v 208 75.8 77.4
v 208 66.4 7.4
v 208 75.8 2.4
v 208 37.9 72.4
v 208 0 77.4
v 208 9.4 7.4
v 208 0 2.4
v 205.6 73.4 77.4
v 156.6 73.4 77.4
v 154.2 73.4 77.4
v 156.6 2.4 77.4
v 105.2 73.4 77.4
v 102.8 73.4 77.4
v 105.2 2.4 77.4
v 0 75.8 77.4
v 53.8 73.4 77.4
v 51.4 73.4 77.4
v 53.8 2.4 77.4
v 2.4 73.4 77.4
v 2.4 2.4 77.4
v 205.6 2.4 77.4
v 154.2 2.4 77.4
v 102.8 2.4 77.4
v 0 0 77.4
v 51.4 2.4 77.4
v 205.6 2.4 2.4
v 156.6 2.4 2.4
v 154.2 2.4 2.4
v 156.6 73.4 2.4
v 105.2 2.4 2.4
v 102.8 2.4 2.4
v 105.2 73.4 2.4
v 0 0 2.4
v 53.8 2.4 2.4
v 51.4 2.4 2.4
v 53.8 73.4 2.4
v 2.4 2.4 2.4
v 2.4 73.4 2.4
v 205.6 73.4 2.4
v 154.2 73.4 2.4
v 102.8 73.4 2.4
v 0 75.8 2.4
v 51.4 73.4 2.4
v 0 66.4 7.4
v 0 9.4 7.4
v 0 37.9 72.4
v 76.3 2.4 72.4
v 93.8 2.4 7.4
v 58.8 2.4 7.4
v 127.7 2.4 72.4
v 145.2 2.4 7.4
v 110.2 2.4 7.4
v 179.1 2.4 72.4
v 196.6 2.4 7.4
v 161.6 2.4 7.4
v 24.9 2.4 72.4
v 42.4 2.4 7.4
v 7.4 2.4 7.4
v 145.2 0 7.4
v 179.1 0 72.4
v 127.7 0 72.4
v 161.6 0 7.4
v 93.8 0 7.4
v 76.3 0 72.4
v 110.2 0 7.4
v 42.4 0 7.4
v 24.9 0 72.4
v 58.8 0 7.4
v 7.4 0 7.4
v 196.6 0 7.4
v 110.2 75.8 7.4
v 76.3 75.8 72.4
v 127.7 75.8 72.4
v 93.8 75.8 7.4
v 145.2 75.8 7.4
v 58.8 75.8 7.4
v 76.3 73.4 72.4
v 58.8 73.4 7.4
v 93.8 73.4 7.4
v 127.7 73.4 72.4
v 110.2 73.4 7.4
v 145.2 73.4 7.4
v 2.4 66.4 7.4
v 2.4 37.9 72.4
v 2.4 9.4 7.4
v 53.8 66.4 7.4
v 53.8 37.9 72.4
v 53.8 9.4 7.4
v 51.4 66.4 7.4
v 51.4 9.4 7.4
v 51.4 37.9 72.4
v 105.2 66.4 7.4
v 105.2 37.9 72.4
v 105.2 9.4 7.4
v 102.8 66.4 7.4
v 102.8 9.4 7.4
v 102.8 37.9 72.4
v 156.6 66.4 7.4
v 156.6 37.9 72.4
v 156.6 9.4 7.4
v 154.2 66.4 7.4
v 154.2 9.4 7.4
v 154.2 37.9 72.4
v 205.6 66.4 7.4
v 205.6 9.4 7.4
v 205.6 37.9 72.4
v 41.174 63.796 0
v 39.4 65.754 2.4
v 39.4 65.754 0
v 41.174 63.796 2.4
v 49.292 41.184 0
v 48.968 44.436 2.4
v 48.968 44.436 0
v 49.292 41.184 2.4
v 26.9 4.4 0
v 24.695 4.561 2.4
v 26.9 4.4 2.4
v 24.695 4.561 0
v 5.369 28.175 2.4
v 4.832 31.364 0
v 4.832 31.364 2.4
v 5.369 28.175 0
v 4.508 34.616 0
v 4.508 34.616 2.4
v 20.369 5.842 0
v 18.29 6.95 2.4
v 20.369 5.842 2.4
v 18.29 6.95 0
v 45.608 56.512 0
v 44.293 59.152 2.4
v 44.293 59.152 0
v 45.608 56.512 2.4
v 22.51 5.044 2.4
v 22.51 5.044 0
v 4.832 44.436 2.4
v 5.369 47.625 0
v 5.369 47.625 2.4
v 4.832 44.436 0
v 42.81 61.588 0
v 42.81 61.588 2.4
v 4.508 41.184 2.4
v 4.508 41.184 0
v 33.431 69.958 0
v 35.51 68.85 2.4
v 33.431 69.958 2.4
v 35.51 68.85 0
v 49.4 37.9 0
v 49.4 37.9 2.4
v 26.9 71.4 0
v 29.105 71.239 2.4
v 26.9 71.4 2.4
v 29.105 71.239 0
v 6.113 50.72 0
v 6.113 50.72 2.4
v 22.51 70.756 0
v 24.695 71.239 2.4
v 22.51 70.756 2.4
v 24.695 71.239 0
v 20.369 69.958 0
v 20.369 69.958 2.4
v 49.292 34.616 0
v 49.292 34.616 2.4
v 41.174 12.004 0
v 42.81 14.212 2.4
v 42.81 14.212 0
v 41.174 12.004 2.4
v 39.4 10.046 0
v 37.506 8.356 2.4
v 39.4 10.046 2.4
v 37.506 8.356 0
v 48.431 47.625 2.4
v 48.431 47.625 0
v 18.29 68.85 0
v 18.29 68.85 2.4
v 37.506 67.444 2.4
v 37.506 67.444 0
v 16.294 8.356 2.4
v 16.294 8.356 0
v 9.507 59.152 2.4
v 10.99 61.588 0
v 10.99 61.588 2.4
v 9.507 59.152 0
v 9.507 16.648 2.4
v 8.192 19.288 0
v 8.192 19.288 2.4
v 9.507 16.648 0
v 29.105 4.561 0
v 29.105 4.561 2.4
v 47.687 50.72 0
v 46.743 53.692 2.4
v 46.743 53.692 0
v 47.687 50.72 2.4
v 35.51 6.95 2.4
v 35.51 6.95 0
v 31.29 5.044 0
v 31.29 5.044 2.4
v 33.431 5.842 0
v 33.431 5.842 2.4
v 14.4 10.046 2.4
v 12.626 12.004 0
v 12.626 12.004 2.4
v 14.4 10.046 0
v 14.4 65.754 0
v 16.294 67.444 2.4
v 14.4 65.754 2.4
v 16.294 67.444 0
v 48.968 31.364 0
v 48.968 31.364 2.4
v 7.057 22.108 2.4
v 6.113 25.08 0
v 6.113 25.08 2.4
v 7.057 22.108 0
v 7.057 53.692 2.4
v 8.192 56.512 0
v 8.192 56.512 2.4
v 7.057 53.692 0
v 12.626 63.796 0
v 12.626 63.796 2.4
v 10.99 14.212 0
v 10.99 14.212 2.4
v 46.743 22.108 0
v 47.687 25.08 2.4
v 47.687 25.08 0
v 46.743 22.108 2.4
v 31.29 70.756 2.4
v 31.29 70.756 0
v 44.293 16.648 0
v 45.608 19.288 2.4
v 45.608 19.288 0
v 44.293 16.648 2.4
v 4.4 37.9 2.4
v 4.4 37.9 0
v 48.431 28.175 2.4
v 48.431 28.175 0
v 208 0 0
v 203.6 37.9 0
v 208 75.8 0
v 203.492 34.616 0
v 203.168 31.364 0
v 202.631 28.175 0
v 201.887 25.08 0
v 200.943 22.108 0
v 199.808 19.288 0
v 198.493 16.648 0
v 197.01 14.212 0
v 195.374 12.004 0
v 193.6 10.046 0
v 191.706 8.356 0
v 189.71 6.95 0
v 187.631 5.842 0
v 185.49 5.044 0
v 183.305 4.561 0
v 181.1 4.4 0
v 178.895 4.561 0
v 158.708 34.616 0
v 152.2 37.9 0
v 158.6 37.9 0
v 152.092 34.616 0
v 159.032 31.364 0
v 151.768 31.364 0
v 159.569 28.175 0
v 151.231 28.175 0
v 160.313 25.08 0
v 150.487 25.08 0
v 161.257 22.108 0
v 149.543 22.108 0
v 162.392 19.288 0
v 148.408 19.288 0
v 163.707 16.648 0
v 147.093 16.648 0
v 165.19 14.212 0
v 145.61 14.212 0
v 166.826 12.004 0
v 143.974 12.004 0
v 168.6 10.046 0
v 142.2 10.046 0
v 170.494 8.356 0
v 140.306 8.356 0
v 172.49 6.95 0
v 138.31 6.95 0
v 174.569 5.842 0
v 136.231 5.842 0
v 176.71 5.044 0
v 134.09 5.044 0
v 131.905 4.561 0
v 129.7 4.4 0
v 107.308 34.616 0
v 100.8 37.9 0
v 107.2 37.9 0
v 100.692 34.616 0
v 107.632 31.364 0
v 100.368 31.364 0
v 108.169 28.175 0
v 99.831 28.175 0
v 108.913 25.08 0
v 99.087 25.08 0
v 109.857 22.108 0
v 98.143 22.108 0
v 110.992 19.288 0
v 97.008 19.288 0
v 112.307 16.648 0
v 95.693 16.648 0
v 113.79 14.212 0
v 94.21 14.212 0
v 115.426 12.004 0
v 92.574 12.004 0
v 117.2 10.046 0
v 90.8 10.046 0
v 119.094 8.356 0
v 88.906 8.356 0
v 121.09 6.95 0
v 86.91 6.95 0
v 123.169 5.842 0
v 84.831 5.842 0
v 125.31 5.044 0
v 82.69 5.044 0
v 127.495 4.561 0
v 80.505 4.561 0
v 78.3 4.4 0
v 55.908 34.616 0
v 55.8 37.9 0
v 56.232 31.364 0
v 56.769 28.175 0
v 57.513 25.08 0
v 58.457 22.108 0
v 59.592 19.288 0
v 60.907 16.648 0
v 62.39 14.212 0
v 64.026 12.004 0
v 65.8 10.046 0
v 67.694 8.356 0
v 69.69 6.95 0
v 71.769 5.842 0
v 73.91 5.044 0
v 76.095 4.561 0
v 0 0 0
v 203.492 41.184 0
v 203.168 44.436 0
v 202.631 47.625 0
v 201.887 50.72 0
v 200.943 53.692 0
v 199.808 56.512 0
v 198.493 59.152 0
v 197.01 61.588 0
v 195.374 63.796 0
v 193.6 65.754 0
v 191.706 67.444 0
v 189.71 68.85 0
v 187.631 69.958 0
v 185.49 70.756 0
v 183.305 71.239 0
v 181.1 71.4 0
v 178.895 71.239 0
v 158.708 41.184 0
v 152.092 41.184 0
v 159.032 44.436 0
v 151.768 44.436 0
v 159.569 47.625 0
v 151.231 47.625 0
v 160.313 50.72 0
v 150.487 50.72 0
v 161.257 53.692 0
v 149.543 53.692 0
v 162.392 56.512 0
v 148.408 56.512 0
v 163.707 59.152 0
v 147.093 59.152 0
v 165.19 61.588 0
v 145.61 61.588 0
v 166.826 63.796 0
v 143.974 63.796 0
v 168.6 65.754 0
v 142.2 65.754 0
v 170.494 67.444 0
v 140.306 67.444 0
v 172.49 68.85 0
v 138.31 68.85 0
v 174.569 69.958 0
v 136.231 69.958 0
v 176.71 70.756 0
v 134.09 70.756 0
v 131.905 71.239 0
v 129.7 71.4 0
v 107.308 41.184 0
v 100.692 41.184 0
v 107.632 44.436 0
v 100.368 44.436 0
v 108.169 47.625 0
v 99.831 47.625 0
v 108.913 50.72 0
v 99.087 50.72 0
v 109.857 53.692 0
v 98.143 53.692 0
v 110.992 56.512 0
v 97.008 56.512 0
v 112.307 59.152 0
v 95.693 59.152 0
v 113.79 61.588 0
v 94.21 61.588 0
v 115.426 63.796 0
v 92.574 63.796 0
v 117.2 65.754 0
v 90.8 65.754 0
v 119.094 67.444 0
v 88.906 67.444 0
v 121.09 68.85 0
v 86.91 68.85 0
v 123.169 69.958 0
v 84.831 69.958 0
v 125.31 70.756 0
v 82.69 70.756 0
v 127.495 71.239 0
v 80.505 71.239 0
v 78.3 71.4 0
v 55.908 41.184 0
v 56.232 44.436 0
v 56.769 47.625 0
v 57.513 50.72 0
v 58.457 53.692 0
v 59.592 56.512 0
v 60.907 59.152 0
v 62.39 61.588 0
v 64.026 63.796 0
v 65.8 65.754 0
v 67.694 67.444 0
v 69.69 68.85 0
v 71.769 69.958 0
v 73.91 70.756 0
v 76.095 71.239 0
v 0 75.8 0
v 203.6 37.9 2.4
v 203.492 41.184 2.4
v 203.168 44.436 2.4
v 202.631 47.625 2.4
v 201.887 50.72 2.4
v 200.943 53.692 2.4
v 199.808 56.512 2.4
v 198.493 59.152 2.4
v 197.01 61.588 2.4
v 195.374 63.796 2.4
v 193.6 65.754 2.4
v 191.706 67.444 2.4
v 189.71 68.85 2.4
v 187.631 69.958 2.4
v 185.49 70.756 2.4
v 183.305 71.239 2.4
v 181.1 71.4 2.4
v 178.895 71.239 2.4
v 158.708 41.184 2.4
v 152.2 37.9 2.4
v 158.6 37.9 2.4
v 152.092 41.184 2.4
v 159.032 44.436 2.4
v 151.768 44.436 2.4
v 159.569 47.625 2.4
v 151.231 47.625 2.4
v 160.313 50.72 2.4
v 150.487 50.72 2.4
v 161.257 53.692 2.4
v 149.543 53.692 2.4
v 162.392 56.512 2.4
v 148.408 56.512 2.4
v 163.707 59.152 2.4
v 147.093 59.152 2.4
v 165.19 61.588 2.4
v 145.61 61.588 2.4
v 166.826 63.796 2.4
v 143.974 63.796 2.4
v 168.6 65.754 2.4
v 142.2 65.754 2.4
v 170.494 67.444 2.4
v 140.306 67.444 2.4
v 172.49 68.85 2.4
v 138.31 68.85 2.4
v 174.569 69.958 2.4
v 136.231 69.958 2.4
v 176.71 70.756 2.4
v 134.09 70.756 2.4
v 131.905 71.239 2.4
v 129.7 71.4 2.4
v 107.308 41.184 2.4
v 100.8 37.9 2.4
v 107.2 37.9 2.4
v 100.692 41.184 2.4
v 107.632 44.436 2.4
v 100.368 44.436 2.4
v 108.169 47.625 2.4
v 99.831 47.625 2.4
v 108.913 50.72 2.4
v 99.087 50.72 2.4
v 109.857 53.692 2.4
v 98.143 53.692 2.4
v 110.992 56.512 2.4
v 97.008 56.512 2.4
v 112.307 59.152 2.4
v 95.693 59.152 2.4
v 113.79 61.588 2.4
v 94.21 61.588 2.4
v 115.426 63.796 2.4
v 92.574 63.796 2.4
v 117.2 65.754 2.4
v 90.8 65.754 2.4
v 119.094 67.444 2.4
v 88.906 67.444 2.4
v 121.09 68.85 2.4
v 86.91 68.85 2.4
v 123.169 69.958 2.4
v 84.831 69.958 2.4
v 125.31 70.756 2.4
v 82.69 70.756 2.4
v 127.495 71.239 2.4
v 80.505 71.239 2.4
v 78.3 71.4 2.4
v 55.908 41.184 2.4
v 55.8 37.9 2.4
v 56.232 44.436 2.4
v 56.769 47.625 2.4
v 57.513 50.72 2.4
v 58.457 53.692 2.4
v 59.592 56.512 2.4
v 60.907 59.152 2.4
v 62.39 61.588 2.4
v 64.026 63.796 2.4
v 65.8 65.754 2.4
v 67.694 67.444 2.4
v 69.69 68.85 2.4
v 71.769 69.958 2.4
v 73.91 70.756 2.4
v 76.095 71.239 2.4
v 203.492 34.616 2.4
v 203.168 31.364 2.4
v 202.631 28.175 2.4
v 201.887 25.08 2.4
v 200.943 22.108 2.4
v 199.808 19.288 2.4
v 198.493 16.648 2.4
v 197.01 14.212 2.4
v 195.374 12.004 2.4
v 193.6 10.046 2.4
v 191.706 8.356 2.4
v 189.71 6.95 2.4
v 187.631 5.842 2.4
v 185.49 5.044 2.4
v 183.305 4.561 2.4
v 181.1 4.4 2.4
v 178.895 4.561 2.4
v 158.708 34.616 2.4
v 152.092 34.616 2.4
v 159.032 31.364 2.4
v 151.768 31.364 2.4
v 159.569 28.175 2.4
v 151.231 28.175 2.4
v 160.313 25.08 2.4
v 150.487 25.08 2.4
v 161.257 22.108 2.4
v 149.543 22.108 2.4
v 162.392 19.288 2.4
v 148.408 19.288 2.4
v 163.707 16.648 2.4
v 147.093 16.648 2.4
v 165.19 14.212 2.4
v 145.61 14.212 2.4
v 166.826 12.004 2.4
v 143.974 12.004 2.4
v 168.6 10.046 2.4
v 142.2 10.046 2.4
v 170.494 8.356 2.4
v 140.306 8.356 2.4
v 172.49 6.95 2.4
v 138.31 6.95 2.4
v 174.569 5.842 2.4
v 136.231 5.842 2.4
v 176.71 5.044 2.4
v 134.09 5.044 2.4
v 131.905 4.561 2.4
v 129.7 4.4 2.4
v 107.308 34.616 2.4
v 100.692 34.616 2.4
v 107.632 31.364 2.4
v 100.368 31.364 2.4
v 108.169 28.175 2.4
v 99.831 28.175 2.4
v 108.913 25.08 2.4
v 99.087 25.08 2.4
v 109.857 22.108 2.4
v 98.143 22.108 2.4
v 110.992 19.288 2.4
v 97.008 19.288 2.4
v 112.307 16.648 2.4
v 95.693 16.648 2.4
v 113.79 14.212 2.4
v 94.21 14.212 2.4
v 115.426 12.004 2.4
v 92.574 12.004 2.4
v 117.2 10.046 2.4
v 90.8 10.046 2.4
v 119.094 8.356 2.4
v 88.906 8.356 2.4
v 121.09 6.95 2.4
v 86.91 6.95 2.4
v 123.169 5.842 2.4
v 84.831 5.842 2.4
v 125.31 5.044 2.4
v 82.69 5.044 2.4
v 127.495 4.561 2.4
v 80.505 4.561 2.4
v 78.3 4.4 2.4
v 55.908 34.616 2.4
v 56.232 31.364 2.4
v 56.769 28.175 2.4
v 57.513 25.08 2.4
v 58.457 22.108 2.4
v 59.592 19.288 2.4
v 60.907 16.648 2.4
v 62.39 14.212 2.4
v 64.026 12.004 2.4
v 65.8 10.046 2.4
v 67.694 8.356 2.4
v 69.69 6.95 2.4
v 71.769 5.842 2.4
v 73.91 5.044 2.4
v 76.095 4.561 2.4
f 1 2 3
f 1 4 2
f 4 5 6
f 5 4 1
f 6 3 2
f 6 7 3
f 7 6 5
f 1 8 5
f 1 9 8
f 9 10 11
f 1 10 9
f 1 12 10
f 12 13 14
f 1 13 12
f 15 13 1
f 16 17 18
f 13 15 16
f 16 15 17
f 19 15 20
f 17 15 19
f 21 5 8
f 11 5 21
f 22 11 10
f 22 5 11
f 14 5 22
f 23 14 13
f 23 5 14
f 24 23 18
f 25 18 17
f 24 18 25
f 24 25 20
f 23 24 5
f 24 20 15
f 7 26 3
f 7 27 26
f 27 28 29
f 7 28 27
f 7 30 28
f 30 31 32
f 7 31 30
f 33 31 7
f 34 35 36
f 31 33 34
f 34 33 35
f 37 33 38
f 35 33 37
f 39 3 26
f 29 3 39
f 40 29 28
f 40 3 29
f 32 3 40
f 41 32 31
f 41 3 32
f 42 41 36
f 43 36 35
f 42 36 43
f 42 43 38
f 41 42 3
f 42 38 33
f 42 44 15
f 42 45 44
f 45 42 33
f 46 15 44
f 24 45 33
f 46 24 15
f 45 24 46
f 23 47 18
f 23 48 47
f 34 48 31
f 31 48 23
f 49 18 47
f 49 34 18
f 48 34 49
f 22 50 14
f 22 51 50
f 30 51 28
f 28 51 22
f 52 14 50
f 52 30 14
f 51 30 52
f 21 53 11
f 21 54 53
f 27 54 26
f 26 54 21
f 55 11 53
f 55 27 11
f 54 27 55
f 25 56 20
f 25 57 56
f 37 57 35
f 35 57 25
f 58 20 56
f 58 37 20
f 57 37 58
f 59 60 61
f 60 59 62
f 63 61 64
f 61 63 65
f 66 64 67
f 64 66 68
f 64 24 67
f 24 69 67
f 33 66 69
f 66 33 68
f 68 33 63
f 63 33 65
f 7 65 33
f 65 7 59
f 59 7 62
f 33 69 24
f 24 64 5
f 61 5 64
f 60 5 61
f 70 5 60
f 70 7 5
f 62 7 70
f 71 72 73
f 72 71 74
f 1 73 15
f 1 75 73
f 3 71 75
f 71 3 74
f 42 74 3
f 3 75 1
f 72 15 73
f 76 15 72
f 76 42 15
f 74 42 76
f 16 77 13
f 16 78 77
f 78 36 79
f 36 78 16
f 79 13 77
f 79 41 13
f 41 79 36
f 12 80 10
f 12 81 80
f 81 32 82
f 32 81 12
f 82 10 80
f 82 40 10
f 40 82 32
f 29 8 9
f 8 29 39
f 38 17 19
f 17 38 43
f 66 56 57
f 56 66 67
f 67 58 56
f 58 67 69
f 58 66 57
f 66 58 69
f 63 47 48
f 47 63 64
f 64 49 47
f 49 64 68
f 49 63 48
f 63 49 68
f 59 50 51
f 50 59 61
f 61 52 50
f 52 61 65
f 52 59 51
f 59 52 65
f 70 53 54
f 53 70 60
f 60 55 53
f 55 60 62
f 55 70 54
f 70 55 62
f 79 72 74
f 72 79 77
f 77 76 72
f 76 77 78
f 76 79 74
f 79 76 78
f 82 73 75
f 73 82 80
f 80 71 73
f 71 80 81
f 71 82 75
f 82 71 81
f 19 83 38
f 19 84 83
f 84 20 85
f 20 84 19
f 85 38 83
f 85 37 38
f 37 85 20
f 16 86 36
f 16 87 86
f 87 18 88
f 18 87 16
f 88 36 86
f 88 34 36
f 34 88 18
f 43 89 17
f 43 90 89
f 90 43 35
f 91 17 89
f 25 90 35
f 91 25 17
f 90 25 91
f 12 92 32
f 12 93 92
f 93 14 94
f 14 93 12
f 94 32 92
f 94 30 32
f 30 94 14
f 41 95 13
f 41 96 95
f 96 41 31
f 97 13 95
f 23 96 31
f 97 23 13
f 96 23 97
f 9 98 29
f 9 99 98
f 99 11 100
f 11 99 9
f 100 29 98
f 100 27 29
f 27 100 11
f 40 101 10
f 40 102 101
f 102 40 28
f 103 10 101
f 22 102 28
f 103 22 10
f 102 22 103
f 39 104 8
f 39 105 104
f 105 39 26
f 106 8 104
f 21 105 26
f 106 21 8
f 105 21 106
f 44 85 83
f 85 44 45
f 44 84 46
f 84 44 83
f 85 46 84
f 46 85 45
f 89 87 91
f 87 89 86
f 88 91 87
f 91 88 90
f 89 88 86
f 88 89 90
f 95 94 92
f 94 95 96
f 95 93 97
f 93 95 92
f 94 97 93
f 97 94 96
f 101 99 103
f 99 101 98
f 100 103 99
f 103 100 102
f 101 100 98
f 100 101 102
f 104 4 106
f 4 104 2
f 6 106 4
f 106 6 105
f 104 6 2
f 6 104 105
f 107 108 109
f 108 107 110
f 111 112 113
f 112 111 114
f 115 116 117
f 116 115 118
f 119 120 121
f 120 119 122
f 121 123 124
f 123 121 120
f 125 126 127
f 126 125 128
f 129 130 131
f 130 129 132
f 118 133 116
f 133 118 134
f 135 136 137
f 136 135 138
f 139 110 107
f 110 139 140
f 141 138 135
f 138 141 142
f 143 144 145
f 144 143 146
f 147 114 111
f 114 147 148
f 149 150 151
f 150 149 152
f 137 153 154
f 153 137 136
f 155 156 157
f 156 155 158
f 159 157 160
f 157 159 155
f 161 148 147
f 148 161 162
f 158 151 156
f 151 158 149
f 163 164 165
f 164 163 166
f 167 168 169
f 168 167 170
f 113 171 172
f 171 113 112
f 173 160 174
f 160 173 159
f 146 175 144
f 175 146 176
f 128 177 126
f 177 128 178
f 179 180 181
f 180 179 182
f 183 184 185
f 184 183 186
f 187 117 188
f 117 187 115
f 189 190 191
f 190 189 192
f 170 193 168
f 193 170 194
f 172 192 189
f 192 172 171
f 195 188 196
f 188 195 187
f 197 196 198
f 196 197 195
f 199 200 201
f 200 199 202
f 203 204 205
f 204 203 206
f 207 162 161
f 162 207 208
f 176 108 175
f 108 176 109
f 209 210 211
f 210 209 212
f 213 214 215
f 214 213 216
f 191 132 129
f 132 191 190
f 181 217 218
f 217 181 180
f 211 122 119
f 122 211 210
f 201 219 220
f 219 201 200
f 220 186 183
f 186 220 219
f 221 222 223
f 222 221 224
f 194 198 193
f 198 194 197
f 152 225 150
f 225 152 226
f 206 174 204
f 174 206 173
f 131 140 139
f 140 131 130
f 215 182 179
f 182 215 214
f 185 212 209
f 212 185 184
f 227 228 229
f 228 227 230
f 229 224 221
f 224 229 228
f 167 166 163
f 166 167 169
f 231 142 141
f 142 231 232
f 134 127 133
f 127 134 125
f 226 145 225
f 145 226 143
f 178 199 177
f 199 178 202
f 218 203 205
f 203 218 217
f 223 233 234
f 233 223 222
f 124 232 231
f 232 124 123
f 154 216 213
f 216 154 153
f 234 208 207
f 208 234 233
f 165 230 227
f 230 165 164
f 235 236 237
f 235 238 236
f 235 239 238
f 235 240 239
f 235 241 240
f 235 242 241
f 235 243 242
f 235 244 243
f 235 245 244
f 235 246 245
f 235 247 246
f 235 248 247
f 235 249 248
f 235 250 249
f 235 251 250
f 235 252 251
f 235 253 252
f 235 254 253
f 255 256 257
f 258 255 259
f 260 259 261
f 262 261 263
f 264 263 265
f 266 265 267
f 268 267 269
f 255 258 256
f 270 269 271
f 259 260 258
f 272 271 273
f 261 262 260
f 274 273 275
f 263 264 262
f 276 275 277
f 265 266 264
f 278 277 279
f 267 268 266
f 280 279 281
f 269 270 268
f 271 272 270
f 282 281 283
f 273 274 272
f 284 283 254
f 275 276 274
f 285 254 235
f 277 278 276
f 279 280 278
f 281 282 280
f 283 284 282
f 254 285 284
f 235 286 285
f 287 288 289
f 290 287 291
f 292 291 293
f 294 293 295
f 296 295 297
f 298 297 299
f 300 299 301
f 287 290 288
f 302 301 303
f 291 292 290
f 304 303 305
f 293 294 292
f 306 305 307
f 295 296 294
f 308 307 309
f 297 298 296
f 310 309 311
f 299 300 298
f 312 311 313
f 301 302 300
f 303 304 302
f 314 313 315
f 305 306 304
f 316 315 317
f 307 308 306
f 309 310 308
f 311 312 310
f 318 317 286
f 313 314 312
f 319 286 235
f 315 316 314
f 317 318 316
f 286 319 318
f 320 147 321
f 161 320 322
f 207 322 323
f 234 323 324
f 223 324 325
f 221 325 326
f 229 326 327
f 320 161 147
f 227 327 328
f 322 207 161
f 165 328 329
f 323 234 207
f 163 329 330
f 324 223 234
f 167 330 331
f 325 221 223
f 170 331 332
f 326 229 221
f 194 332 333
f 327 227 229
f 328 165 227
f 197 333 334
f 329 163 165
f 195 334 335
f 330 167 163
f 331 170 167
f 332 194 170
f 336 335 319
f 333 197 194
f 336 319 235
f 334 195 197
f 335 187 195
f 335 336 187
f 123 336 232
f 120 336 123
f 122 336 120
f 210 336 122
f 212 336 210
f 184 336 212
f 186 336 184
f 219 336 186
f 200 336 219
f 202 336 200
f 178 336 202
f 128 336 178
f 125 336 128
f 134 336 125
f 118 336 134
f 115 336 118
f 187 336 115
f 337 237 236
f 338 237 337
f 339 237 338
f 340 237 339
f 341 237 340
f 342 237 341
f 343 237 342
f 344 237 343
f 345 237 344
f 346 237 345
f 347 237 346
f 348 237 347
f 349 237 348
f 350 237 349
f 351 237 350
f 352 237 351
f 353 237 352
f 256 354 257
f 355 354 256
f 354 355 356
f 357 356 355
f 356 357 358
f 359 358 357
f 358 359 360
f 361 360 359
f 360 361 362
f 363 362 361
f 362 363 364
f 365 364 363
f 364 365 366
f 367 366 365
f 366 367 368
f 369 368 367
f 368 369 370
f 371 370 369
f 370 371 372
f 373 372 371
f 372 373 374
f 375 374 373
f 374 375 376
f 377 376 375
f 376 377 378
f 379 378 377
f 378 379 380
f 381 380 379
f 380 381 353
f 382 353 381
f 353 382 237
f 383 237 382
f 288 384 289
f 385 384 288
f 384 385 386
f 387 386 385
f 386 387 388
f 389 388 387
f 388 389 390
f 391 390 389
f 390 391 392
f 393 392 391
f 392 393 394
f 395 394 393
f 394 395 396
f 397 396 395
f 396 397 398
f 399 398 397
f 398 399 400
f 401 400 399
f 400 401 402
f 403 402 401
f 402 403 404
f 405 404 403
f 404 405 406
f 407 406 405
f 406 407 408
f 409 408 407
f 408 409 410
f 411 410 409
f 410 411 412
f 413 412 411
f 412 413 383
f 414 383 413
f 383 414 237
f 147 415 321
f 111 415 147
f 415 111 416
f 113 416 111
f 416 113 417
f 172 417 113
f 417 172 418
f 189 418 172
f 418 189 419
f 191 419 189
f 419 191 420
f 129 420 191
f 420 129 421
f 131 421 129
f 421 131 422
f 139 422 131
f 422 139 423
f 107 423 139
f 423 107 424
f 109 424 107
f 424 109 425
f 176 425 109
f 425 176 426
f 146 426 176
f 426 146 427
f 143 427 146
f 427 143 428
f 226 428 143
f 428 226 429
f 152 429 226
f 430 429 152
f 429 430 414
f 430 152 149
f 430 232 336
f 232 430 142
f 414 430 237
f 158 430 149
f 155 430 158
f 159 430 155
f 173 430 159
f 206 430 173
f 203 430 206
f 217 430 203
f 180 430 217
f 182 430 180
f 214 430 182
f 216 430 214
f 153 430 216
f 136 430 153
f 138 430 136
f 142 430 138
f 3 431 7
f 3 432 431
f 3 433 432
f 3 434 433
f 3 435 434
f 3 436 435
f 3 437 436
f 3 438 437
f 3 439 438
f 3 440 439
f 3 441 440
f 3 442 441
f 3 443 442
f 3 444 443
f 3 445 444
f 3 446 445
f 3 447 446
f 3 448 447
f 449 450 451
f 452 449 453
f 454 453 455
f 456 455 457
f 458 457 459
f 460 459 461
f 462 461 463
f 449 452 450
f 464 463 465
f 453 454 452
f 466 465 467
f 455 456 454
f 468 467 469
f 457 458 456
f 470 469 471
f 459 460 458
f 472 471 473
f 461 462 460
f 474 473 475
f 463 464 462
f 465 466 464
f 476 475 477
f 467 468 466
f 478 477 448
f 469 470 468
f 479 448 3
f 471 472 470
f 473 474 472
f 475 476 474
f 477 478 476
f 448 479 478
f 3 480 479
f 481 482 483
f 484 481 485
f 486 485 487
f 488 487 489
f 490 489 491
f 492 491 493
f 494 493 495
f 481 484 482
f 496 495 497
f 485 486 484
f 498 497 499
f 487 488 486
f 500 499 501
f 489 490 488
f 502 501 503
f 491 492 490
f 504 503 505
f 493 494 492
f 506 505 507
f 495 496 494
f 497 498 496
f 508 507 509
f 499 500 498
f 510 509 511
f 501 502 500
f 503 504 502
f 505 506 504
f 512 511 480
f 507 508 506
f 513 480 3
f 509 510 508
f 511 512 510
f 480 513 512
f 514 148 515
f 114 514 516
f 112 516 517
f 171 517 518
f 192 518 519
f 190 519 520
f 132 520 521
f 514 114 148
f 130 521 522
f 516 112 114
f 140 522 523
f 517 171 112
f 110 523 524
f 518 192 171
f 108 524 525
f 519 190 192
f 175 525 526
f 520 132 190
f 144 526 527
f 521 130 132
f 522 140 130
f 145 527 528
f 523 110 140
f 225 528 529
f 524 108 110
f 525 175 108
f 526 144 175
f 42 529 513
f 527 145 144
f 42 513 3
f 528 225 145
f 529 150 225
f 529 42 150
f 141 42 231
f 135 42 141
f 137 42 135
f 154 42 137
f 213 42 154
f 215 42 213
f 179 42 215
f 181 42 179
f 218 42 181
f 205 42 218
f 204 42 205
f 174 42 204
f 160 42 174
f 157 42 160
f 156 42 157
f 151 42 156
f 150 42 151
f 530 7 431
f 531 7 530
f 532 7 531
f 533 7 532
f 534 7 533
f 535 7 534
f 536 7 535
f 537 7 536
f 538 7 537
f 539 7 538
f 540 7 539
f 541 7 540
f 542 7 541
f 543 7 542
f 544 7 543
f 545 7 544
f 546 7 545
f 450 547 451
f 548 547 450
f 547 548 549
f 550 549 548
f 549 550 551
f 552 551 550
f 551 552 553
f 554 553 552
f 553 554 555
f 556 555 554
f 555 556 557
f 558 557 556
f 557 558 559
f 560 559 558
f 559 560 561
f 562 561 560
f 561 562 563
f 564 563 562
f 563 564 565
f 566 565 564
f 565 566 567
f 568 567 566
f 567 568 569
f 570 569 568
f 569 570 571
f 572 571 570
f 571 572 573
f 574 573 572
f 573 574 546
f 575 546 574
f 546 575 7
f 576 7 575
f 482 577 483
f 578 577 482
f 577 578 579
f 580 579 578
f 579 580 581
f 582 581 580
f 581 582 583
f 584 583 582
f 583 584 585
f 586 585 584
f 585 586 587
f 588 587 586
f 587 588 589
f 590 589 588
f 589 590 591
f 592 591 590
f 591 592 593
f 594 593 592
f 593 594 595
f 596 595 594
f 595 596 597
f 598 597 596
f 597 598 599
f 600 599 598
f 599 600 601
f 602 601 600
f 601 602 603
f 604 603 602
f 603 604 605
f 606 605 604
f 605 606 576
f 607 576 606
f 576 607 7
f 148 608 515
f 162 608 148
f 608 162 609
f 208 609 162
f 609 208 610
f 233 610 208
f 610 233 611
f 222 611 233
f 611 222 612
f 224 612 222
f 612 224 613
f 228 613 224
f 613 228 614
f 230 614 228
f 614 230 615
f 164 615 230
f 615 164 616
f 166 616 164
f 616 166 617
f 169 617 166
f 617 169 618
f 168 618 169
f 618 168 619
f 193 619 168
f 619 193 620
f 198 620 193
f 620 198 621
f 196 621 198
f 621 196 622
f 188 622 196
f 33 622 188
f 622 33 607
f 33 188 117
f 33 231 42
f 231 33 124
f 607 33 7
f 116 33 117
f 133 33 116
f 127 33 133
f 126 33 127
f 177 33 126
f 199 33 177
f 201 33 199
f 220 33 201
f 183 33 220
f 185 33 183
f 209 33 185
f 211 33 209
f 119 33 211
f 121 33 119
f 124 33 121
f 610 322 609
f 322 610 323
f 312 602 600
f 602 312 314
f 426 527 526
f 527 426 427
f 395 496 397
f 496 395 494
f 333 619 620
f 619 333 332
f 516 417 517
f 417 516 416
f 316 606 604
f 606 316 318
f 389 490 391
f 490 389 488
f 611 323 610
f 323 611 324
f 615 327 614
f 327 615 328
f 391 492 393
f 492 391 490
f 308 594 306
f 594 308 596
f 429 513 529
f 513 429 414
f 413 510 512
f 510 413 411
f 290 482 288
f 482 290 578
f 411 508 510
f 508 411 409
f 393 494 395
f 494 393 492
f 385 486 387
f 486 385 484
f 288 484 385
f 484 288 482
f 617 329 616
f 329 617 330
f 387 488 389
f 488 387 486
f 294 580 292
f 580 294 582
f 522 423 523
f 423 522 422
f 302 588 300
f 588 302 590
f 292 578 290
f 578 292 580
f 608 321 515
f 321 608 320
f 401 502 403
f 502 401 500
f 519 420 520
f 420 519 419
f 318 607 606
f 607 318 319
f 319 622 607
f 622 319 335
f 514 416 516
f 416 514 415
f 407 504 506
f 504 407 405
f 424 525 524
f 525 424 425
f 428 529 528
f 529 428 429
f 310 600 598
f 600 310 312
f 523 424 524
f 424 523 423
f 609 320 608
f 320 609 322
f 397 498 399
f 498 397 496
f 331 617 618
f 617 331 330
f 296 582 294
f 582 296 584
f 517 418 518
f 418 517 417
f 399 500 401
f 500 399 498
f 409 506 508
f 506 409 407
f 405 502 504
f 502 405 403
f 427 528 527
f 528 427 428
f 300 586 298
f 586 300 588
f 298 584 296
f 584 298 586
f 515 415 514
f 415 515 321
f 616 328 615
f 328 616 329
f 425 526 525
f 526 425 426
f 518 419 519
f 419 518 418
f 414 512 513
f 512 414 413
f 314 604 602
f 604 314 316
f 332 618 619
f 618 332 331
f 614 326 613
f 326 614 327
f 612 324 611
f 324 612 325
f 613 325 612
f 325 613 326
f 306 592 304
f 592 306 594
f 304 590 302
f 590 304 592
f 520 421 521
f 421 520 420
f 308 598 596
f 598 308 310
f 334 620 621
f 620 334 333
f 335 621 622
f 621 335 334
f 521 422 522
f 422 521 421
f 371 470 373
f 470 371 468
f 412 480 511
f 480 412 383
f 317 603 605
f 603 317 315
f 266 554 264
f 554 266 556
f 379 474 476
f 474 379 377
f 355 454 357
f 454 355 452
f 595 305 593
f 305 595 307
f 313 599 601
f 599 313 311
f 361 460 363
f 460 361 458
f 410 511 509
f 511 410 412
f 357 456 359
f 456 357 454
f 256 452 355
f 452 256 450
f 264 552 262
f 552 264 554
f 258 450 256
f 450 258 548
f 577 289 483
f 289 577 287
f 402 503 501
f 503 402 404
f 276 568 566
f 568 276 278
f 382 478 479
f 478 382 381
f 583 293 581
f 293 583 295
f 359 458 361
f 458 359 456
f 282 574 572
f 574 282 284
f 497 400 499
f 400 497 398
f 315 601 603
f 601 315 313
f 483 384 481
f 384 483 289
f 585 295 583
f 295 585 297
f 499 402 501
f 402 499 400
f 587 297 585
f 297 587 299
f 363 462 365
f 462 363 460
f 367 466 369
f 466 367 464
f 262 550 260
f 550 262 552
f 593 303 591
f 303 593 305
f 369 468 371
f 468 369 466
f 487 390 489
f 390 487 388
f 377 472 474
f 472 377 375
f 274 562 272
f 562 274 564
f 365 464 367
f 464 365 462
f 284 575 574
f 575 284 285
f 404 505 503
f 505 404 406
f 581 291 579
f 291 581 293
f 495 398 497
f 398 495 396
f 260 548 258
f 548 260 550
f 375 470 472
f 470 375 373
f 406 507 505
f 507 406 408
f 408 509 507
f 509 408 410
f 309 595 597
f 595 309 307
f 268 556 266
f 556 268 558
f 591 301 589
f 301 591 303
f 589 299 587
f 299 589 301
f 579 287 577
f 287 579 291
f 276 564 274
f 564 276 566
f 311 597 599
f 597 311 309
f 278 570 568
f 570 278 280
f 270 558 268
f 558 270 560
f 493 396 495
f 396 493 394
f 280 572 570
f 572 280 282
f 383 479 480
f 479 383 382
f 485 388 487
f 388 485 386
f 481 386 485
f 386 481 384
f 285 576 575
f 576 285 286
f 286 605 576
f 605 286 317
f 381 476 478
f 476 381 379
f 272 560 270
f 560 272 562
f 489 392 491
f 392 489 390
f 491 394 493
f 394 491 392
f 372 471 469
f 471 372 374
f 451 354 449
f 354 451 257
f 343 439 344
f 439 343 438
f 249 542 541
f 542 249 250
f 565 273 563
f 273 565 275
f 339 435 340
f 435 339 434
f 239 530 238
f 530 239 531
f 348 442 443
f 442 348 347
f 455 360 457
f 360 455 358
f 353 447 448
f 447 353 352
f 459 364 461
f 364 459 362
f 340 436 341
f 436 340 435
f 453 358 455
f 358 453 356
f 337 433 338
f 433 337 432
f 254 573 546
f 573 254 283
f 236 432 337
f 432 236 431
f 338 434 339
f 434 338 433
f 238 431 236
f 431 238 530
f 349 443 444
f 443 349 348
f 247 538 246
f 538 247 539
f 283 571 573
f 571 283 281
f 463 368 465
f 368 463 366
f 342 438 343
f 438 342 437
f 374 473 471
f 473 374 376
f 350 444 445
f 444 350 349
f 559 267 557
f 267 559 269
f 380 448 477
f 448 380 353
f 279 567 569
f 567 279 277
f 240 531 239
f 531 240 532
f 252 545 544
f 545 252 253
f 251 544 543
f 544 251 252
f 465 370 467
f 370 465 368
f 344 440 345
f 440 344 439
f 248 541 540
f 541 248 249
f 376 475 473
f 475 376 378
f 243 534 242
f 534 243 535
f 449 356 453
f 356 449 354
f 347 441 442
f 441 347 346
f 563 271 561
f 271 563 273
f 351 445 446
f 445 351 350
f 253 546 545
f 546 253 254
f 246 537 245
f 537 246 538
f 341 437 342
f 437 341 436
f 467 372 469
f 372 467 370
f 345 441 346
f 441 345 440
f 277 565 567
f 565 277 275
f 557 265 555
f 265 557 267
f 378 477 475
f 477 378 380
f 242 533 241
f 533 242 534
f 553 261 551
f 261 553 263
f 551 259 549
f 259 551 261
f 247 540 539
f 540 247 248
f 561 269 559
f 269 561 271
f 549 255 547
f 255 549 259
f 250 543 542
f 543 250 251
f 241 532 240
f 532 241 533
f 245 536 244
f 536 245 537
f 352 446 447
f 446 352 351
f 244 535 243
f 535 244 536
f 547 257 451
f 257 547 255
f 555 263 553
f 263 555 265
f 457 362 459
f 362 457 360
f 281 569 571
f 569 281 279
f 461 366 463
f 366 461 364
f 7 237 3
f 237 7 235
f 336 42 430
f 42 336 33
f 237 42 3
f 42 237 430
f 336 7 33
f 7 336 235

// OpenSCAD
// Define the dimensions of the bottles
BOTTLE_DIMENSIONS = [45, 67, 75];

// Number of bottles in the arrangement
NUM_BOTTLES = 4;

// Clearance inside the bottles for internal components
INTERNAL_CLEARANCE = 2; // mm

// Thickness of the walls of the holder
WALL_THICKNESS = 2.4; // mm

// Clearance around windows on the bottles
WINDOW_CLEARANCE = 5.0; // mm

// Define a single bottle as a module
module bottle() {
    // Create a red-colored cube representing a bottle
    color([1, 0, 0]) cube(BOTTLE_DIMENSIONS);
};

// Create multiple bottles in an array arrangement
module bottles() {
    union(){
        for (i = [0:NUM_BOTTLES - 1])
        translate([i * (BOTTLE_DIMENSIONS[0] + WALL_THICKNESS + 2 * INTERNAL_CLEARANCE), 0, 0]) bottle();
    };
};

// Calculate the total length of the holder
TOTAL_LENGTH = NUM_BOTTLES * BOTTLE_DIMENSIONS[0] + (NUM_BOTTLES + 1) * WALL_THICKNESS + 2 * NUM_BOTTLES * INTERNAL_CLEARANCE;

// Define a wall along the X-axis
module x_wall() {
    cube([
        TOTAL_LENGTH,
        WALL_THICKNESS,
        BOTTLE_DIMENSIONS[2]
    ]);
};

// Define a window on the X-axis (version 1). This is a rectangular window, that requires support for printing.
module x_window_v1() {
    translate([WALL_THICKNESS + WINDOW_CLEARANCE, 0, WINDOW_CLEARANCE])
    cube([BOTTLE_DIMENSIONS[0] - 2 * WINDOW_CLEARANCE, WALL_THICKNESS, BOTTLE_DIMENSIONS[2] - 2 * WINDOW_CLEARANCE - WALL_THICKNESS]);
};

// Define a window on the X-axis (version 2). This is a trinagular window, that does not require support for printing.
module x_window_v2() {
    color([1, 0, 0])
    translate([WALL_THICKNESS + WINDOW_CLEARANCE, WALL_THICKNESS, WINDOW_CLEARANCE])
    resize([BOTTLE_DIMENSIONS[0] - 2 * WINDOW_CLEARANCE, WALL_THICKNESS, BOTTLE_DIMENSIONS[2] - 2 * WINDOW_CLEARANCE])
    rotate([90, 0, 0])
    linear_extrude(WALL_THICKNESS)
    polygon([[0, 0], [100, 100], [200, 0]]);
};

// Define a wall along the Y-axis
module y_wall() {
    translate([
        0,
        WALL_THICKNESS,
        0
    ])
    cube([
        WALL_THICKNESS,
        BOTTLE_DIMENSIONS[1] + 2 * INTERNAL_CLEARANCE,
        BOTTLE_DIMENSIONS[2]
    ]);
};

// Define a window on the Y-axis (version 1). This is a rectangular window, that requires support for printing.
module y_window_v1() {
    color([1, 0, 0]) translate([0, WALL_THICKNESS + INTERNAL_CLEARANCE + BOTTLE_DIMENSIONS[1] / 2, BOTTLE_DIMENSIONS[2] / 2]) rotate([90, 0, 90]) cylinder(d=BOTTLE_DIMENSIONS[1], h=WALL_THICKNESS, $fn=64);
};

// Define a window on the Y-axis (version 2). This is a trinagular window, that does not require support for printing.
module y_window_v2() {
    color([1, 0, 0])
    translate([0, WALL_THICKNESS + WINDOW_CLEARANCE + INTERNAL_CLEARANCE, WINDOW_CLEARANCE])
    resize([WALL_THICKNESS, BOTTLE_DIMENSIONS[1] - 2 * WINDOW_CLEARANCE, BOTTLE_DIMENSIONS[2] - 2 * WINDOW_CLEARANCE])
    rotate([90, 0, 90])
    linear_extrude(WALL_THICKNESS)
    polygon([[0, 0], [100, 100], [200, 0]]);
};

// Define the bottom of the bottle assembly
module bottom() {
    cube([TOTAL_LENGTH, BOTTLE_DIMENSIONS[1] + 2 * (WALL_THICKNESS + INTERNAL_CLEARANCE), WALL_THICKNESS]);
};

module bottom_window() {
    translate([INTERNAL_CLEARANCE, WALL_THICKNESS + INTERNAL_CLEARANCE, 0]) resize([BOTTLE_DIMENSIONS[0], BOTTLE_DIMENSIONS[1], WALL_THICKNESS]) cylinder(d=BOTTLE_DIMENSIONS[0], h=WALL_THICKNESS, $fn=64);
};

// Create the final assembly of walls, windows, and bottom
union(){
    translate([0, 0, WALL_THICKNESS]) {
        //translate([WALL_THICKNESS + INTERNAL_CLEARANCE, WALL_THICKNESS + INTERNAL_CLEARANCE, 0]) bottles();
        difference() {
            // X WALLS
            union() {
                x_wall();
                translate([0, BOTTLE_DIMENSIONS[1] + WALL_THICKNESS + 2 * INTERNAL_CLEARANCE, 0]) x_wall();
            };
            // X WINDOWS (FRONT)
            union(){
                for (i = [0:NUM_BOTTLES - 1])
                translate([i * (BOTTLE_DIMENSIONS[0] + WALL_THICKNESS + 2 * INTERNAL_CLEARANCE), 0, 0]) x_window_v2();
            };
            // X WINDOWS (BACK)
            union(){
                for (i = [1:NUM_BOTTLES - 2])
                translate([i * (BOTTLE_DIMENSIONS[0] + WALL_THICKNESS + 2 * INTERNAL_CLEARANCE), BOTTLE_DIMENSIONS[1] + WALL_THICKNESS + 2 * INTERNAL_CLEARANCE, 0]) x_window_v2();
            };
        };
        difference() {
            // Y WALLS
            union(){
                for (i = [0:NUM_BOTTLES])
                translate([i * (BOTTLE_DIMENSIONS[0] + WALL_THICKNESS + 2 * INTERNAL_CLEARANCE), 0, 0]) y_wall();
            };
            // Y WINDOWS
            union(){
                for (i = [0:NUM_BOTTLES])
                translate([i * (BOTTLE_DIMENSIONS[0] + WALL_THICKNESS + 2 * INTERNAL_CLEARANCE), 0, 0]) y_window_v2();
            };
        };

    };
    difference() {
        // BOTTOM
        bottom();
        // Y WINDOWS
        union(){
            for (i = [0:NUM_BOTTLES - 1])
            translate([WALL_THICKNESS + BOTTLE_DIMENSIONS[0] / 2 + i * (BOTTLE_DIMENSIONS[0] + WALL_THICKNESS + 2 * INTERNAL_CLEARANCE), BOTTLE_DIMENSIONS[1] / 2, 0]) bottom_window();
        };
    }
};
